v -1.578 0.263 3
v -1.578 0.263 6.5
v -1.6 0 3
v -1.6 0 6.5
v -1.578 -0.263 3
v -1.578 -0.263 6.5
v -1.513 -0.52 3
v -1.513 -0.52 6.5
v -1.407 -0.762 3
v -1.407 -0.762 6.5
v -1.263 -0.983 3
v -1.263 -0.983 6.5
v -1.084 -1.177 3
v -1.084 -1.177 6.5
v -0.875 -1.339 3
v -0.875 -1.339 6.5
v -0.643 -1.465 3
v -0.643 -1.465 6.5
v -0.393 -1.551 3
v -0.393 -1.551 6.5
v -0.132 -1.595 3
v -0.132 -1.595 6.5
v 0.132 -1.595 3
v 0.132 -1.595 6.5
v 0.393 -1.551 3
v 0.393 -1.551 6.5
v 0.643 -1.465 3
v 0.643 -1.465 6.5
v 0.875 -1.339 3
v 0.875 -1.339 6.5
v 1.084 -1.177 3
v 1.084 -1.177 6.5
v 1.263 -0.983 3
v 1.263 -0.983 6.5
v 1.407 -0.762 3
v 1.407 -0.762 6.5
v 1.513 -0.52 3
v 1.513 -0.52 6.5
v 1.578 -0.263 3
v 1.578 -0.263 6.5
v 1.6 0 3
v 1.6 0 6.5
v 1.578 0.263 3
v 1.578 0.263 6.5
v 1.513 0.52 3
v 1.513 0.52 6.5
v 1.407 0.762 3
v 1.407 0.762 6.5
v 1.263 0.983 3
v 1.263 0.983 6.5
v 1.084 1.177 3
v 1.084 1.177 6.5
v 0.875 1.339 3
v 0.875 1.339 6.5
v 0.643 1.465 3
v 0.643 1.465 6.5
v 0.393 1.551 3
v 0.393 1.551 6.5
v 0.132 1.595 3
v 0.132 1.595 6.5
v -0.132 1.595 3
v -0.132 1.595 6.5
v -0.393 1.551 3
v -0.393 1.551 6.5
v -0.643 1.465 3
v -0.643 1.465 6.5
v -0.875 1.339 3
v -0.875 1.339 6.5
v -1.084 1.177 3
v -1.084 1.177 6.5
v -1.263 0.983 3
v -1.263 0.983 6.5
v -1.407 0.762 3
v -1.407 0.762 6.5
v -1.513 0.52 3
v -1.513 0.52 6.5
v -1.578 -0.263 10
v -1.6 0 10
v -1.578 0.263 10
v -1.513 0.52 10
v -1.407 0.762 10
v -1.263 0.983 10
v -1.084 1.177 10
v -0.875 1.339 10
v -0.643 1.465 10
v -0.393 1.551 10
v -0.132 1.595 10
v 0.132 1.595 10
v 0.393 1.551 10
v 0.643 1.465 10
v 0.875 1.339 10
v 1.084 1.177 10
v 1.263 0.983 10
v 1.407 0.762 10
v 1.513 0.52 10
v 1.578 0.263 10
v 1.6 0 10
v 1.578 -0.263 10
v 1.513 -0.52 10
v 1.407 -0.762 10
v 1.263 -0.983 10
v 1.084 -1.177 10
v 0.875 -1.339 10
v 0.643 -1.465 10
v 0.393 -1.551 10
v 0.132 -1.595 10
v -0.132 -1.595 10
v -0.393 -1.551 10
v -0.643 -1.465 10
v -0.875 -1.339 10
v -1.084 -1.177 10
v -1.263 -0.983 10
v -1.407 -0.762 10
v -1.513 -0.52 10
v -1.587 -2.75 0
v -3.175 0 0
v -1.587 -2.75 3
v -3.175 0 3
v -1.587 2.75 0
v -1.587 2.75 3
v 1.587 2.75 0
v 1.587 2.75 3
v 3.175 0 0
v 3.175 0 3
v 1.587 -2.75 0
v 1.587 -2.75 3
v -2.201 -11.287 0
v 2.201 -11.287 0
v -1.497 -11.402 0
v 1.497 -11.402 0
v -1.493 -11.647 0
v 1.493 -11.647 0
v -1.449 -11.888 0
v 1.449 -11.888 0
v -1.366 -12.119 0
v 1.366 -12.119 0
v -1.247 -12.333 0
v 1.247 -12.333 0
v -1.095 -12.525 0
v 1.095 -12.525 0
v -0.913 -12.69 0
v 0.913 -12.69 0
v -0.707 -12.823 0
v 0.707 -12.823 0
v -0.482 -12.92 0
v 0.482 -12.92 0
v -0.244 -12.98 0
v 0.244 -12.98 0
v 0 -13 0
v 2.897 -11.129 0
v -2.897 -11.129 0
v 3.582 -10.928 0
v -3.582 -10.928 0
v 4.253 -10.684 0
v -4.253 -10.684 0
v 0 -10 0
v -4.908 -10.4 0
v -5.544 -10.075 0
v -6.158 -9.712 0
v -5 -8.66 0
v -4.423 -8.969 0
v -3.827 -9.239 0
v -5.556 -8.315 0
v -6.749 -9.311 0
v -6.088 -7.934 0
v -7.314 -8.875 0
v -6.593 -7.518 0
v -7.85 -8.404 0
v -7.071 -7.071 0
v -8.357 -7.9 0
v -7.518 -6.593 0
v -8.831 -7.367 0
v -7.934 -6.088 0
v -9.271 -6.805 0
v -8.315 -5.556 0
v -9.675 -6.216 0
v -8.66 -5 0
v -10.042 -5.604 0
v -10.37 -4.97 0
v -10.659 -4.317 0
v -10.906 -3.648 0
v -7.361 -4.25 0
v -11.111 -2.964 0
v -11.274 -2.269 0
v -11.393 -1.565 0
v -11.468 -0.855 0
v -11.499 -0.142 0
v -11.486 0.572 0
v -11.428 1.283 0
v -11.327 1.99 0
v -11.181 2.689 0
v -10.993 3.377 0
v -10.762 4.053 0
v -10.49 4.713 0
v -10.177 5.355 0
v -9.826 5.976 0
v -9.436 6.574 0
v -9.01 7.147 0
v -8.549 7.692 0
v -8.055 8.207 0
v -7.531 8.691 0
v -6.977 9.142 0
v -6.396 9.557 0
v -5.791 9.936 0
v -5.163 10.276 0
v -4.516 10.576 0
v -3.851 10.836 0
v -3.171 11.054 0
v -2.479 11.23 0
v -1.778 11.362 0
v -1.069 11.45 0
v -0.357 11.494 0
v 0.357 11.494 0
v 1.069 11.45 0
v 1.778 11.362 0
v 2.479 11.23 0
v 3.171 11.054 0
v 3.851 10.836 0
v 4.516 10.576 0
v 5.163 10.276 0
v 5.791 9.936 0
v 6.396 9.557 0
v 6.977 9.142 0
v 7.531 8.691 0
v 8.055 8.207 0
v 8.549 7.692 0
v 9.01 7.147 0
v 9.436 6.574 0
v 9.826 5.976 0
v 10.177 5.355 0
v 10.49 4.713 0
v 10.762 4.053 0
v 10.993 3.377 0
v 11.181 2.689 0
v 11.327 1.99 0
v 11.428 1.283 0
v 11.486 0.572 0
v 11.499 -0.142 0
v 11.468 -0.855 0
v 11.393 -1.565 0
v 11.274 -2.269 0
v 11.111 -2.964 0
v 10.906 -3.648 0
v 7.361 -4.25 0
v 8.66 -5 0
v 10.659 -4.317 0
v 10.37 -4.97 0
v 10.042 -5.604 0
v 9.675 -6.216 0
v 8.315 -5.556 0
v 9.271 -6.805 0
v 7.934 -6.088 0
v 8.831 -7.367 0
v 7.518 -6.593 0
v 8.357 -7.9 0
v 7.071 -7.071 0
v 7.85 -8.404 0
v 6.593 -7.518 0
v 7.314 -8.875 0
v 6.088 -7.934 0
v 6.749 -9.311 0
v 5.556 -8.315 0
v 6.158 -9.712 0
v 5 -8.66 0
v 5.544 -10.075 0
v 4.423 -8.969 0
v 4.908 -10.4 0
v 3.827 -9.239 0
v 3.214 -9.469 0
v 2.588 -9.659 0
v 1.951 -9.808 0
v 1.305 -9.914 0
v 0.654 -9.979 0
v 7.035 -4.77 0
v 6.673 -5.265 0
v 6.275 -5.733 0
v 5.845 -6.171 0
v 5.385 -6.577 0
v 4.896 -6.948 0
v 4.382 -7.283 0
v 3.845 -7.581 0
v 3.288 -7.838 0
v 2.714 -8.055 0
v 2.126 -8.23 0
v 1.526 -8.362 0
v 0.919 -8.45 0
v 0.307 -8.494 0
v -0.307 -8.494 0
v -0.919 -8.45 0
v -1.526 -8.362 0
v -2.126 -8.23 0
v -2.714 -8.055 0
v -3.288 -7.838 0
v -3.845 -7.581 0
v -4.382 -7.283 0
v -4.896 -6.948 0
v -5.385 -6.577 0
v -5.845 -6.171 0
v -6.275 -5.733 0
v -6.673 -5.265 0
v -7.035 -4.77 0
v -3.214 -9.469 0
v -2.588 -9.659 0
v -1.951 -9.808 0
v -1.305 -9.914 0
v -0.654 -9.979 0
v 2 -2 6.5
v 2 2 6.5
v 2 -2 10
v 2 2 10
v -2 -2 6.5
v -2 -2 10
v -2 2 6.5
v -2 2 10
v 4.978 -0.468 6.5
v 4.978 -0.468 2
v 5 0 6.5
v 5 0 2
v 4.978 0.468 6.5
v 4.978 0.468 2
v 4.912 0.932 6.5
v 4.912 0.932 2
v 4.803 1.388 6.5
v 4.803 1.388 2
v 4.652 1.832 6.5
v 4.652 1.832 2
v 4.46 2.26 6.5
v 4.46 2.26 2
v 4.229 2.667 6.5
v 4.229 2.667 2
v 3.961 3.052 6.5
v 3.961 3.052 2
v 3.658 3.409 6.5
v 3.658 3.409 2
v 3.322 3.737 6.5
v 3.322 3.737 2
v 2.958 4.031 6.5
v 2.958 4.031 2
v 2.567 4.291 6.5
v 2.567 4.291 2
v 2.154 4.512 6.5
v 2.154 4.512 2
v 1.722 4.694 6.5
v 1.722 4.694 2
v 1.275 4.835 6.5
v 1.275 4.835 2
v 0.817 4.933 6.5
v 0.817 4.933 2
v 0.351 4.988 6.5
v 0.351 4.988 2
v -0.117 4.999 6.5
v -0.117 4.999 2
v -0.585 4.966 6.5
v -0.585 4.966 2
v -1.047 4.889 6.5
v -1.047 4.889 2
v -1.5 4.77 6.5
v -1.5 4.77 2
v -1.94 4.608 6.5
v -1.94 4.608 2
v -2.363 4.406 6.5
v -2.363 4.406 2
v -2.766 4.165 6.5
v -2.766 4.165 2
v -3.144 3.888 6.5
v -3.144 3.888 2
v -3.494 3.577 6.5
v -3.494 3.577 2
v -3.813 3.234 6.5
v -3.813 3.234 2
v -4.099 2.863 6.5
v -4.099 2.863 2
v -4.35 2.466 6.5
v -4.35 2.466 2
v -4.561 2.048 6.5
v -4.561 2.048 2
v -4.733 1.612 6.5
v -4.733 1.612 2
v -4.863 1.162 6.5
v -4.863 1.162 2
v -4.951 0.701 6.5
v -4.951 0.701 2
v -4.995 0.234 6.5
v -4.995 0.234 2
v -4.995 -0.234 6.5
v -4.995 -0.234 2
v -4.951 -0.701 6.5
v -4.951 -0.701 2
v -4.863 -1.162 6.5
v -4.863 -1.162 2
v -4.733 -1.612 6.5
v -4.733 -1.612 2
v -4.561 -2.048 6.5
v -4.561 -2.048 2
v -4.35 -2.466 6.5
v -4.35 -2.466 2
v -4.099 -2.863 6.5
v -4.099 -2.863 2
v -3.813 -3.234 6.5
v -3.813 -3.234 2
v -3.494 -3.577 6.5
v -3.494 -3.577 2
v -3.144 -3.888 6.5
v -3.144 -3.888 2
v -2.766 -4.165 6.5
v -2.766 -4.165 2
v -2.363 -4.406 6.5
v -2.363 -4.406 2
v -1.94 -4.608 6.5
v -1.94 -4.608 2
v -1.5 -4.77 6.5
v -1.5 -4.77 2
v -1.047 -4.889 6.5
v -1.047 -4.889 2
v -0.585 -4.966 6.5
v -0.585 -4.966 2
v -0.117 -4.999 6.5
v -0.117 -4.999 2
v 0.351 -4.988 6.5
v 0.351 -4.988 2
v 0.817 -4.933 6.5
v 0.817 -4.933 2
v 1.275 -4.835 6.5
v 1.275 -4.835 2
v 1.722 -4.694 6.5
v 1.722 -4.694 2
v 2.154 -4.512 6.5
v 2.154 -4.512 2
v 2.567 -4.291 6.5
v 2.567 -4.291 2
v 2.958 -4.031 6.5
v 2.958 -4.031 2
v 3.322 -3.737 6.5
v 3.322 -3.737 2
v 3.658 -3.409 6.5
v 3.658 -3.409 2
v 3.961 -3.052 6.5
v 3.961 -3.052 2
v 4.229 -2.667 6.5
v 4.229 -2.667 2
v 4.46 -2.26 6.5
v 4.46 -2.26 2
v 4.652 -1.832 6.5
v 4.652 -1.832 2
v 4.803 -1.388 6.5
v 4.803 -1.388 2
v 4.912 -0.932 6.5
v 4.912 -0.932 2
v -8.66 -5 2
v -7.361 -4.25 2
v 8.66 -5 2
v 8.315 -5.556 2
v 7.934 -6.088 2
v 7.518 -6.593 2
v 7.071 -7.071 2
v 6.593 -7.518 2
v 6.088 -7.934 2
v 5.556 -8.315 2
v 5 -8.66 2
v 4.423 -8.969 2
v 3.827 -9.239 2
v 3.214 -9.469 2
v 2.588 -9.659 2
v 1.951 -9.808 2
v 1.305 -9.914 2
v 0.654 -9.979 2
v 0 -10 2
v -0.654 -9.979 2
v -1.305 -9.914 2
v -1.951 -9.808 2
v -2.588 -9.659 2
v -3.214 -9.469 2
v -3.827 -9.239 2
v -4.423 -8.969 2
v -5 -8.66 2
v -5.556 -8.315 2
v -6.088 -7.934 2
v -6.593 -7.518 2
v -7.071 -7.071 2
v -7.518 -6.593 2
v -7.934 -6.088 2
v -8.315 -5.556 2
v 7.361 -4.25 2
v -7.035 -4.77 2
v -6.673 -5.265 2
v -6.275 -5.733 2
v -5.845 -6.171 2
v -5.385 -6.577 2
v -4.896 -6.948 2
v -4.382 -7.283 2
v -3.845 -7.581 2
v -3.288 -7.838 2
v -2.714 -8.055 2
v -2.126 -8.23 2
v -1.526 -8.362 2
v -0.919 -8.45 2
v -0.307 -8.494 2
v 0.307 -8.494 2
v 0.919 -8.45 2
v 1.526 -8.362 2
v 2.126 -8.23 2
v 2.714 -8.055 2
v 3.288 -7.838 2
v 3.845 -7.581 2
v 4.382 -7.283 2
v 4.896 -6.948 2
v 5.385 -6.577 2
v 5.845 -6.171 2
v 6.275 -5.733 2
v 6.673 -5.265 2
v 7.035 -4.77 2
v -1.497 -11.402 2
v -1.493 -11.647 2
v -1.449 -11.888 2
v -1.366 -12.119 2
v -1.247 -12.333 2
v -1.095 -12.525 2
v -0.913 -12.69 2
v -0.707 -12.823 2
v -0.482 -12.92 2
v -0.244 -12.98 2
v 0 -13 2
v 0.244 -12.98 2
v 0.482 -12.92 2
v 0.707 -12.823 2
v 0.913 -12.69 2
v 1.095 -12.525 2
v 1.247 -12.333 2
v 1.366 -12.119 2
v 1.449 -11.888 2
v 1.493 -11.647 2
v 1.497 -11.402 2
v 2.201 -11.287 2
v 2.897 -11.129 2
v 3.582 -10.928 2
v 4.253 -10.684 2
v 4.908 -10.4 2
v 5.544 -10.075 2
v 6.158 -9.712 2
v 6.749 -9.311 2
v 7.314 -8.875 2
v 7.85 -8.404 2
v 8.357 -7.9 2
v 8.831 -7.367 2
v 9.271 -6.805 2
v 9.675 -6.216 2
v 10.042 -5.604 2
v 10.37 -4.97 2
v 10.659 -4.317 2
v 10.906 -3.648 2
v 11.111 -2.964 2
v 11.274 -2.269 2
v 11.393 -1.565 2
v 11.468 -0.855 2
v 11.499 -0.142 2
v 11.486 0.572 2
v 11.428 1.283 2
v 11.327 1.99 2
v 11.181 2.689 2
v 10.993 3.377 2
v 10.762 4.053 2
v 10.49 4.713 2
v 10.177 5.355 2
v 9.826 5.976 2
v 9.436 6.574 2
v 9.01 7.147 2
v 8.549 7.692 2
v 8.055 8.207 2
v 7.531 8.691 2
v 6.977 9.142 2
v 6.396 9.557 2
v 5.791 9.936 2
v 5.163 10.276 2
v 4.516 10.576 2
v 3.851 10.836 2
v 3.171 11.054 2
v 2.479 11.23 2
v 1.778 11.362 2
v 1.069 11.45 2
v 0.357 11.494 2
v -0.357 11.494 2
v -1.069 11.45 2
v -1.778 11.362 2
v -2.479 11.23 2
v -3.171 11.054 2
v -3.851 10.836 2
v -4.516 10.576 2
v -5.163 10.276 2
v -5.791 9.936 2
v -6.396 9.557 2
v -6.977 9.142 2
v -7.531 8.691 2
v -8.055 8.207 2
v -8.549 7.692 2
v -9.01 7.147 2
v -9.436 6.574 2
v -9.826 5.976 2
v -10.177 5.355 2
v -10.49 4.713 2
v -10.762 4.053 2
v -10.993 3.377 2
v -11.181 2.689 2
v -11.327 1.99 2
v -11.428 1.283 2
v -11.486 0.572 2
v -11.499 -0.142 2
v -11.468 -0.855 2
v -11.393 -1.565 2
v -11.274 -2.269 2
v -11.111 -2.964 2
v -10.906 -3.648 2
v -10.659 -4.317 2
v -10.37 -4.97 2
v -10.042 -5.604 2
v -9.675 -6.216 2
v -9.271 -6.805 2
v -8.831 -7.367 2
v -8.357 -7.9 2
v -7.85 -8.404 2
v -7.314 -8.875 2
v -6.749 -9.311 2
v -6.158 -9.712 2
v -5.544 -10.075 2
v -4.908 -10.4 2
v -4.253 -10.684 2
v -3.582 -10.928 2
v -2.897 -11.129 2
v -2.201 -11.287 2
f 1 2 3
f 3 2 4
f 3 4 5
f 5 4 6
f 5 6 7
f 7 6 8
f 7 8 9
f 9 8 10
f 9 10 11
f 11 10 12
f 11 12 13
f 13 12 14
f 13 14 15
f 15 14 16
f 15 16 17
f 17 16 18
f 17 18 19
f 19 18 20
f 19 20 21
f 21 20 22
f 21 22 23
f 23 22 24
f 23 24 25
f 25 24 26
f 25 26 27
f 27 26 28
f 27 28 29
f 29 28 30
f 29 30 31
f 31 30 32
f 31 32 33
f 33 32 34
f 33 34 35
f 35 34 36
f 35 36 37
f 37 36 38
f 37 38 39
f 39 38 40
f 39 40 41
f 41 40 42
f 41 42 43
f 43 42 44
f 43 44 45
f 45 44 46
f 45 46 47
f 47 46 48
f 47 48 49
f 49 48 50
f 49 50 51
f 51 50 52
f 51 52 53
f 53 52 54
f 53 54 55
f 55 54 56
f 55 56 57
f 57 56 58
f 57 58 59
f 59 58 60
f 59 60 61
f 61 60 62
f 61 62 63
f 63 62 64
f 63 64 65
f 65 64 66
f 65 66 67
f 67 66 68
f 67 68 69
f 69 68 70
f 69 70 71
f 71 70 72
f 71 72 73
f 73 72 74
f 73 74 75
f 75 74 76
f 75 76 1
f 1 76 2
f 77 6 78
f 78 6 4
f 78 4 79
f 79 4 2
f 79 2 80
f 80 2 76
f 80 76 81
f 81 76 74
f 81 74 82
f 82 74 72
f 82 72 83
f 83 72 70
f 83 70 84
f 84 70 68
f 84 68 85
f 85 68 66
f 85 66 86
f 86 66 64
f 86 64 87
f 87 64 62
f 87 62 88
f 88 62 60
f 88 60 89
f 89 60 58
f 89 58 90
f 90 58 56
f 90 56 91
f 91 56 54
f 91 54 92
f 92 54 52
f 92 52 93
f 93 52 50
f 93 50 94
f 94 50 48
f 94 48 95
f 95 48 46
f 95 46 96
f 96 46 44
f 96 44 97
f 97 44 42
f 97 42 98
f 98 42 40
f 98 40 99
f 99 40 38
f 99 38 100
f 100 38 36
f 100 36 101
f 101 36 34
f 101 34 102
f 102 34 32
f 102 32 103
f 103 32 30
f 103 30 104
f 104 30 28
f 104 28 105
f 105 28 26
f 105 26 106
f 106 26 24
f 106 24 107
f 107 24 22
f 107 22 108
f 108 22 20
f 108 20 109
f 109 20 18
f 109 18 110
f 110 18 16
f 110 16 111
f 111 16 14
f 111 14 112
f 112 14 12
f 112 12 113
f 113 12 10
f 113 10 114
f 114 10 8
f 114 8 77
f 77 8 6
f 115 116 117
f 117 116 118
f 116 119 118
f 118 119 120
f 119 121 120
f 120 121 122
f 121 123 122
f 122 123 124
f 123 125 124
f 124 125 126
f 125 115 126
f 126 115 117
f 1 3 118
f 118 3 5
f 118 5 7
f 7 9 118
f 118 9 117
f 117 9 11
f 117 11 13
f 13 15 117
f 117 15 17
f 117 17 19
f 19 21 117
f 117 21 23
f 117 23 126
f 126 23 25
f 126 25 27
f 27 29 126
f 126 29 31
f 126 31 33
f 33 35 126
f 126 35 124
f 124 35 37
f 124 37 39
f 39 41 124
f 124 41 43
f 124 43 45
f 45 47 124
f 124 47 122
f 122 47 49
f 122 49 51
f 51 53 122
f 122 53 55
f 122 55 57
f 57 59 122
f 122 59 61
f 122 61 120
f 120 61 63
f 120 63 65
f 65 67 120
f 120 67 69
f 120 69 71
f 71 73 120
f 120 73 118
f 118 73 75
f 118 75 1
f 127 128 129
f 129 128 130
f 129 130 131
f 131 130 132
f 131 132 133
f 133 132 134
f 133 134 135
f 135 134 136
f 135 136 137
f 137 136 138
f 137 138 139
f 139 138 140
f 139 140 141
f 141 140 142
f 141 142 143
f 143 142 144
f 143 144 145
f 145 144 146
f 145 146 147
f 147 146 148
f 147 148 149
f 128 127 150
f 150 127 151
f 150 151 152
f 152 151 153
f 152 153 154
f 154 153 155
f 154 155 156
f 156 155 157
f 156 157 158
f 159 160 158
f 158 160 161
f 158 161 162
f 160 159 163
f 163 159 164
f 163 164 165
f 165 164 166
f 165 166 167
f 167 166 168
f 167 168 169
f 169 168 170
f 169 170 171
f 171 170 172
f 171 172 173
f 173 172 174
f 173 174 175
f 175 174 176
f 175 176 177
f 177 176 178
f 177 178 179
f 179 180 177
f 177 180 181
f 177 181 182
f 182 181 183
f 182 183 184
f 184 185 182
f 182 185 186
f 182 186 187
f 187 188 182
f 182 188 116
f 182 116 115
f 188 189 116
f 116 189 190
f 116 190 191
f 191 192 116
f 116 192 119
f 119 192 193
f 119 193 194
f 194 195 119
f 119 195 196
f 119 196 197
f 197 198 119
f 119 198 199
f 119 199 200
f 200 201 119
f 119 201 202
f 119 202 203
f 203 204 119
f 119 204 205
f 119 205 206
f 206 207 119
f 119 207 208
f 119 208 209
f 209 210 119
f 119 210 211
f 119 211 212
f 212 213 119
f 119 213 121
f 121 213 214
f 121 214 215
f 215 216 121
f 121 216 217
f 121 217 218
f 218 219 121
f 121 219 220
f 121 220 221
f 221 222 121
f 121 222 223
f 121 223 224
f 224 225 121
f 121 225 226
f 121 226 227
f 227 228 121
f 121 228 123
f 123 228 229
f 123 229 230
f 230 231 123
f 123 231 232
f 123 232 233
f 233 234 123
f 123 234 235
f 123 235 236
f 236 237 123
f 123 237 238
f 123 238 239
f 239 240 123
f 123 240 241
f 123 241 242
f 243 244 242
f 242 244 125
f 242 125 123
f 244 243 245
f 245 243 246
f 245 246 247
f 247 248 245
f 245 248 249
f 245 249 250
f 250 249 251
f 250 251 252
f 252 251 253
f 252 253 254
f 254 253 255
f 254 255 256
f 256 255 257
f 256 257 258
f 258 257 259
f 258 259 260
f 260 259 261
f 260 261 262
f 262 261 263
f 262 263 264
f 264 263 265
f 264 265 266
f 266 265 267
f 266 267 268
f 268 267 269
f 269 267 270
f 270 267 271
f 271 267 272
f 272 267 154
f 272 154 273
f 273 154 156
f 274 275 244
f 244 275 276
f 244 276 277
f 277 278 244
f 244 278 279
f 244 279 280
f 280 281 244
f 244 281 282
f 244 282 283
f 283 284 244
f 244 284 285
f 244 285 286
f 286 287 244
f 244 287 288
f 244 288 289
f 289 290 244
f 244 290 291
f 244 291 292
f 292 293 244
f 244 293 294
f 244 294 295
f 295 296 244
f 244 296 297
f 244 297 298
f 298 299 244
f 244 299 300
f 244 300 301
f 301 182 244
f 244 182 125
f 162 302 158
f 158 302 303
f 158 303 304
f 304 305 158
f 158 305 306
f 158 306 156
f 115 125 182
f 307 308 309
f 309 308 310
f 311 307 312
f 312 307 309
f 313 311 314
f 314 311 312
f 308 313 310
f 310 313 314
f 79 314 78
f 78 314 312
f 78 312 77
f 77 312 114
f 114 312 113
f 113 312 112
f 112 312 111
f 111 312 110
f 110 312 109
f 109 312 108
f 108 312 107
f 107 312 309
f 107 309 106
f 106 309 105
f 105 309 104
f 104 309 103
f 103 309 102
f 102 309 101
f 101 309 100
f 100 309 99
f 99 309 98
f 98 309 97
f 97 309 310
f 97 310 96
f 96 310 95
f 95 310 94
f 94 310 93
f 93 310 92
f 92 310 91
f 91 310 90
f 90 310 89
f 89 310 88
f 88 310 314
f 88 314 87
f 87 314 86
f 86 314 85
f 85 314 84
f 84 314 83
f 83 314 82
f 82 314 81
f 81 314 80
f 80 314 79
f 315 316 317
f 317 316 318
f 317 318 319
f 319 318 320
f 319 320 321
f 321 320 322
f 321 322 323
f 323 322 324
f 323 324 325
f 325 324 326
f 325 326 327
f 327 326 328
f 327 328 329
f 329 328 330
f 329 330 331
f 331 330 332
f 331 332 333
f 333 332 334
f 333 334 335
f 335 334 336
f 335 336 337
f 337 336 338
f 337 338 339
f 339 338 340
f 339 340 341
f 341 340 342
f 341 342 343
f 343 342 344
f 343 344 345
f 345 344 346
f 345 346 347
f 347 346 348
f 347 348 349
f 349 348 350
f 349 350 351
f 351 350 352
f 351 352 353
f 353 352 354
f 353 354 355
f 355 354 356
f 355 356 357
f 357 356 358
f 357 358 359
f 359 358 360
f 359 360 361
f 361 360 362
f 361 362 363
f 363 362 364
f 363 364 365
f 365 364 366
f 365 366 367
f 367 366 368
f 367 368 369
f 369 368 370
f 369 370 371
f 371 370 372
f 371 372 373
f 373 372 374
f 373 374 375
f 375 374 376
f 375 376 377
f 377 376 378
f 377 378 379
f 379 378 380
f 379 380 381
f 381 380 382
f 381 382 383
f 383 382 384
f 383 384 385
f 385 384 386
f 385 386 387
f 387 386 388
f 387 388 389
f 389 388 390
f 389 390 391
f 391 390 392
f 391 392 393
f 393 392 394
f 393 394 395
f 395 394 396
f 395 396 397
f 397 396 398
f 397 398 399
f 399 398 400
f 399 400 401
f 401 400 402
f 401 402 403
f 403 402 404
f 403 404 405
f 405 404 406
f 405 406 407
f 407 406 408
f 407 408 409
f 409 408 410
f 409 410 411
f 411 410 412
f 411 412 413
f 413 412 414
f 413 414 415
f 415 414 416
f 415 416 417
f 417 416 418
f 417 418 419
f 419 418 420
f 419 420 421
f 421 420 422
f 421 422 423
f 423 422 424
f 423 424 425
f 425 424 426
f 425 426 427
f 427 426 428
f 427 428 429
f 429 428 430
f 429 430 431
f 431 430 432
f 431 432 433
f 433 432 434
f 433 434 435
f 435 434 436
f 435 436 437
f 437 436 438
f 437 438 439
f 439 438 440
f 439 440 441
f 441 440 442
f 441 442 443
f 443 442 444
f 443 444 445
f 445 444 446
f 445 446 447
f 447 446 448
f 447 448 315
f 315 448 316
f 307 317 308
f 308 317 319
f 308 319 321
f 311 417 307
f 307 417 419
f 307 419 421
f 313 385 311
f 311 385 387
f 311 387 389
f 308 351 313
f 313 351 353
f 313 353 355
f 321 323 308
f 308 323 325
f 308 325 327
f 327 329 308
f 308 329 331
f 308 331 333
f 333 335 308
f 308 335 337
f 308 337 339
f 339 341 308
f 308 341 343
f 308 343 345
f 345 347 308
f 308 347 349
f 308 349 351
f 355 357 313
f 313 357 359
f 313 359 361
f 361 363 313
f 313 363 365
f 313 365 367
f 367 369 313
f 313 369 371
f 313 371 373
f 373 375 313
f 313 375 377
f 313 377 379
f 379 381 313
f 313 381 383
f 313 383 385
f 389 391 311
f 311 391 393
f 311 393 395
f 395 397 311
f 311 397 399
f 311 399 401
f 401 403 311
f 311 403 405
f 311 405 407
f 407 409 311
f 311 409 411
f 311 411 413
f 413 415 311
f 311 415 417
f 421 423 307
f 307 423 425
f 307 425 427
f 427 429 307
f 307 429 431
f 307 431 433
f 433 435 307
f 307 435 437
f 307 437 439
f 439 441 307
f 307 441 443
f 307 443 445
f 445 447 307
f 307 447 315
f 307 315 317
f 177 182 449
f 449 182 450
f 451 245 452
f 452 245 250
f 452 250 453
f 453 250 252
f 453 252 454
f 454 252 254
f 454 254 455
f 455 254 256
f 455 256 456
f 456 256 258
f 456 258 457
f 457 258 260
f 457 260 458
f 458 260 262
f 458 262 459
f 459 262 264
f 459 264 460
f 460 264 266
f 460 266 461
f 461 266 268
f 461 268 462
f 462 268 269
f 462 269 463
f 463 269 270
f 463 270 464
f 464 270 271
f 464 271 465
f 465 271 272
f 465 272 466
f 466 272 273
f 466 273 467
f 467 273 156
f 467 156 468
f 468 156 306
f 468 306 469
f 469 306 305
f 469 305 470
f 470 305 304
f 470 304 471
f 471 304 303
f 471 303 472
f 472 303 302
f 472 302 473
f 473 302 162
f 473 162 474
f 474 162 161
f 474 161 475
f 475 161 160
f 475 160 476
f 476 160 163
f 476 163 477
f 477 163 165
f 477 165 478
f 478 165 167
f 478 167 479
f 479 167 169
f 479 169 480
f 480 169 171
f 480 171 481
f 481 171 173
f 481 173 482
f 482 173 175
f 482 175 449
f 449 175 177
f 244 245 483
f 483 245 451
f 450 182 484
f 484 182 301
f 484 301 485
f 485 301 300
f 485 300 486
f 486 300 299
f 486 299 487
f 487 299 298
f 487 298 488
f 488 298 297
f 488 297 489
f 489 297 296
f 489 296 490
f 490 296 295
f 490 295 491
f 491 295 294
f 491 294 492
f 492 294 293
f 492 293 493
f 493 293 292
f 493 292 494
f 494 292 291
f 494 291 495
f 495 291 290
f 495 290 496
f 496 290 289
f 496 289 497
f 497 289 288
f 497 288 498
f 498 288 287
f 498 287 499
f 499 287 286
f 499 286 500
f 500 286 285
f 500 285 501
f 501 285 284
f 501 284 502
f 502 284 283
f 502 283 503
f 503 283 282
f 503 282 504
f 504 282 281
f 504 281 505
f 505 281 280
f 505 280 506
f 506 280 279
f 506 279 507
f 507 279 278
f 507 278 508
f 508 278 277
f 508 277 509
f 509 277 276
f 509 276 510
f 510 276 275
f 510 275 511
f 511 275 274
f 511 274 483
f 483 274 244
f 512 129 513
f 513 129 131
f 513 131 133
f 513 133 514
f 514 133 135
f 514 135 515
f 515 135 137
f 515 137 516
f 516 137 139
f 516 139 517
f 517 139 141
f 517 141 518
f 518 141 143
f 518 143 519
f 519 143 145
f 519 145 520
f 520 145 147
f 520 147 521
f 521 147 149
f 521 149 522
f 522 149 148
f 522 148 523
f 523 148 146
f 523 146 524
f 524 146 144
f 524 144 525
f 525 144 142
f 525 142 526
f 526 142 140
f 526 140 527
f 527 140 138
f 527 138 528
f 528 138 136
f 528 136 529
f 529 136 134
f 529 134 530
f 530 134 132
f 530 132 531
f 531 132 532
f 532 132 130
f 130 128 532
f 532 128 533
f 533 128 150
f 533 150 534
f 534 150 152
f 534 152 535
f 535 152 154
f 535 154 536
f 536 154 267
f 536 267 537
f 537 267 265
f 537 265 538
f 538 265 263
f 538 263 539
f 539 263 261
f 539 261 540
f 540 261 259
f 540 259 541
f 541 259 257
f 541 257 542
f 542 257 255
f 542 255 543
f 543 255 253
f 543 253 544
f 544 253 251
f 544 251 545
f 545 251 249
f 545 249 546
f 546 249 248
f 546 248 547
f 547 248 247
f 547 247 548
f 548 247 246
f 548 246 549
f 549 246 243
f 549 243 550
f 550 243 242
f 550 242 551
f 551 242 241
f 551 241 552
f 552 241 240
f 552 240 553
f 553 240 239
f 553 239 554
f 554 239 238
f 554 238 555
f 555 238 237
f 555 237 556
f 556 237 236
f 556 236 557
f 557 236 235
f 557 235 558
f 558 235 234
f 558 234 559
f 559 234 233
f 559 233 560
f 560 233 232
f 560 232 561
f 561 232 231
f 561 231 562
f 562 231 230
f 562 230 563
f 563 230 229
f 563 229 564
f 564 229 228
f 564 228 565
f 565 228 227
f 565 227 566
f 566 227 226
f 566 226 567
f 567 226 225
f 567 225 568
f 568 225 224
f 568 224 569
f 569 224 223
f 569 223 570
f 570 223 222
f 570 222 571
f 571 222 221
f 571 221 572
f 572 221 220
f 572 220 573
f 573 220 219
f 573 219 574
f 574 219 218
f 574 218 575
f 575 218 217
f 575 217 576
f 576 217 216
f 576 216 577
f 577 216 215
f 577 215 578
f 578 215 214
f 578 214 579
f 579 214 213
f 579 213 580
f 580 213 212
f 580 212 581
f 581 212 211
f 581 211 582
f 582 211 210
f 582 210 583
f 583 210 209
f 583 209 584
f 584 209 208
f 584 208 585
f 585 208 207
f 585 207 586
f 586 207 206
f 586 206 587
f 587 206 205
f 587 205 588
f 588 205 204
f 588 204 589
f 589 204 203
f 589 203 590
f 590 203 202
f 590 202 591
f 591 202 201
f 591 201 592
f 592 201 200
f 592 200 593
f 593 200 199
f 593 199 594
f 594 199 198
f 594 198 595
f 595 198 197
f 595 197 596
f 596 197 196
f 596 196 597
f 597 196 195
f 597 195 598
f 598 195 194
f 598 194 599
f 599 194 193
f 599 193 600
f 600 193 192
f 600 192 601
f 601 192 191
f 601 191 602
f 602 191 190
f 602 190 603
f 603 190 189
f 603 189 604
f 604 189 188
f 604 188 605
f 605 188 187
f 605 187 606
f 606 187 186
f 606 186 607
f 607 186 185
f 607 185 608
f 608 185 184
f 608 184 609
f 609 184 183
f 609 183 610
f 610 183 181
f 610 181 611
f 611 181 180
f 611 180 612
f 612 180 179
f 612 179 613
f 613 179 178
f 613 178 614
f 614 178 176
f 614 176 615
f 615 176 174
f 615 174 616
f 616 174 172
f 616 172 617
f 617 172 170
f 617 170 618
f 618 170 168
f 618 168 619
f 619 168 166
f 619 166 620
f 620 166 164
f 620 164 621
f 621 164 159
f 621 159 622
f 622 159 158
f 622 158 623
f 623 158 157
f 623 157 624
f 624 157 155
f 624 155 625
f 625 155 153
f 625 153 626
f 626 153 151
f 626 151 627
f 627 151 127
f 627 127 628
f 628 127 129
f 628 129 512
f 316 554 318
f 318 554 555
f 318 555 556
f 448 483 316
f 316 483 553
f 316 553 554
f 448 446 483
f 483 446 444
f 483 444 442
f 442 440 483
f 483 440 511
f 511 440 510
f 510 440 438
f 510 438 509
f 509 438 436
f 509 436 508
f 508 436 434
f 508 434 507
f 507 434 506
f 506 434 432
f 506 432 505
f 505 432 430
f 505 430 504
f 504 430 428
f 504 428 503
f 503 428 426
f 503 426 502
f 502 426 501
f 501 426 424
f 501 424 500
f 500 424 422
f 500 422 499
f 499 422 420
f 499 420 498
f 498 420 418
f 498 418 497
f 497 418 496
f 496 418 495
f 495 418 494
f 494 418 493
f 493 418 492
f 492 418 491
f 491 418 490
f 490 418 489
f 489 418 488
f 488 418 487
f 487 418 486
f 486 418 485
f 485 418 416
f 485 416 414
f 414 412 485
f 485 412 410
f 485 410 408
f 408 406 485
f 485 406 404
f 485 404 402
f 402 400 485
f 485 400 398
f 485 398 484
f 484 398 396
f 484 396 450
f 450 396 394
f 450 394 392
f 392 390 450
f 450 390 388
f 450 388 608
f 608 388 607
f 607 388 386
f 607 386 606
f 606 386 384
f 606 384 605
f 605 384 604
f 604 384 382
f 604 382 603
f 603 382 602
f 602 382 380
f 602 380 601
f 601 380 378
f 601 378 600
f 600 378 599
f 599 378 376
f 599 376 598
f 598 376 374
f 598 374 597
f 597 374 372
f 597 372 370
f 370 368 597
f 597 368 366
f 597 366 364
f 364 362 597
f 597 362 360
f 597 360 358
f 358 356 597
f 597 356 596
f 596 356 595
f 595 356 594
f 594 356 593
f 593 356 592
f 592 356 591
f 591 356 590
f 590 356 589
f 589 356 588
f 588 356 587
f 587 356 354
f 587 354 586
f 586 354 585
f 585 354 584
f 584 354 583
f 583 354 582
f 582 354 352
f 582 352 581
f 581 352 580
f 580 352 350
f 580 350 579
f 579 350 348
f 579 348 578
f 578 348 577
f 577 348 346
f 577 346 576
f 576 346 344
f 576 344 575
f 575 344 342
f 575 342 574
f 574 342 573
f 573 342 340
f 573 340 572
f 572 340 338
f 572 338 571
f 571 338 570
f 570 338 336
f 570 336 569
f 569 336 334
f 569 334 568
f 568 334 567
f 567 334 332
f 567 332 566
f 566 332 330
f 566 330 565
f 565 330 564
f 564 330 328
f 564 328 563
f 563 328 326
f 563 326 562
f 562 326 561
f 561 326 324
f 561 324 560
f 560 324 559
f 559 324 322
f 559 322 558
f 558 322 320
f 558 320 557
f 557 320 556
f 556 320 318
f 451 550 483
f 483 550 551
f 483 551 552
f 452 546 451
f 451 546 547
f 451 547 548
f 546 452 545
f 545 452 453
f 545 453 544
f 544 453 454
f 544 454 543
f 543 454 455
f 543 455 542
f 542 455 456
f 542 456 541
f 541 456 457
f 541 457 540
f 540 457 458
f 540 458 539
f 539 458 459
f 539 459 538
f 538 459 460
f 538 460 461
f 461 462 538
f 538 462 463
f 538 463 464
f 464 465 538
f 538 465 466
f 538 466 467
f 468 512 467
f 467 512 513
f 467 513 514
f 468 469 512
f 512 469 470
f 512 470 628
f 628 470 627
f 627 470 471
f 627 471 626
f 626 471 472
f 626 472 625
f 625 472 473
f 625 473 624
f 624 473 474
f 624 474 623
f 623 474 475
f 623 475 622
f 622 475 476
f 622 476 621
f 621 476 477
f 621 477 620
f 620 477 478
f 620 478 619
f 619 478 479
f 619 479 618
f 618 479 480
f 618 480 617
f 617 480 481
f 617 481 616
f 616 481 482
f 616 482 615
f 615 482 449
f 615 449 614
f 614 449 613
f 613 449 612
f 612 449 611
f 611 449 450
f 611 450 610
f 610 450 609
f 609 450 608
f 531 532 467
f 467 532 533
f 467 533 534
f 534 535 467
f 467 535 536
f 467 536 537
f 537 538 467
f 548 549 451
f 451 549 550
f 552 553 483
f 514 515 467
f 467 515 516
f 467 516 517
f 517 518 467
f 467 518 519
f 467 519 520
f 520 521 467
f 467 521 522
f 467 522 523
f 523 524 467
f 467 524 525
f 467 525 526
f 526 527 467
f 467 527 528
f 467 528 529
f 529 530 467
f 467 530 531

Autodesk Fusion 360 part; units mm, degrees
sketch "Sketch1" plane through (0, 0, 0) normal (0, 0, 1) x (1, 0, 0)
  circle A0 centre (0, -11.5) radius 2 construction
  circle A1 centre (0, 0) radius 12 construction
  circle A2 centre (0, -11.5) radius 1.5
  circle A3 centre (0, 0) radius 8.5
  line L0 (0, 0) -> (8.6603, -5)
  circle A4 centre (0, 0) radius 11.5
  line L1 (0, 0) -> (-8.6603, -5)
  circle A5 centre (0, 0) radius 10
  dimension "d4" = 1.5
  dimension "d5" = -1.5
  dimension "d6" = 2
  dimension "d7" = 0.5
  dimension "d8" = 20
  dimension "d9" = 3
extrude "Extrude1" add sketch "Sketch1" along normal blind 2 contours A2 A4 | A2 A4 | A2 A4 | A3 L0 L1 A5 | A3 L0 L1 | A3 L0 L1 picked at (-8.9789, -3.0313)
sketch "Sketch2" plane through (0, 0, 2) normal (0, 0, 1) x (-1, 0, 0)
  arc A0 (7.3612, 4.25) -> (-7.3612, 4.25) centre (0, 0) ccw
  line L0 (-7.3612, 4.25) -> (-8.6603, 5)
  arc A1 (8.6603, 5) -> (-8.6603, 5) centre (0, 0) ccw
  line L1 (8.6603, 5) -> (7.3612, 4.25)
  arc A2 (-1.4968, 11.4022) -> (1.4968, 11.4022) centre (0, 0) ccw
  arc A3 (1.4968, 11.4022) -> (-1.4968, 11.4022) centre (0, 11.5) ccw
  circle A4 centre (0, 0) radius 5
  dimension "d12" = 10
extrude "Extrude2" add sketch "Sketch2" along normal blind 4.5 contours A4
sketch "Sketch3" plane through (0, 0, 6.5) normal (0, 0, 1) x (-1, 0, 0)
  circle A0 centre (0, 0) radius 5
  line L0 (-2, 2) -> (2, 2)
  line L1 (2, 2) -> (2, -2)
  line L2 (2, -2) -> (-2, -2)
  line L3 (-2, -2) -> (-2, 2)
extrude "Extrude3" add sketch "Sketch3" along normal blind 3.5 contours L0 L1 L2 L3
sketch "Sketch4" plane through (0, 0, 0) normal (0, 0, -1) x (1, 0, 0)
  arc A0 (7.3612, 4.25) -> (-7.3612, 4.25) centre (0, 0) ccw
  line L0 (-7.3612, 4.25) -> (-8.6603, 5)
  arc A1 (8.6603, 5) -> (-8.6603, 5) centre (0, 0) ccw
  line L1 (8.6603, 5) -> (7.3612, 4.25)
  arc A2 (-1.4968, 11.4022) -> (1.4968, 11.4022) centre (0, 0) ccw
  arc A3 (1.4968, 11.4022) -> (-1.4968, 11.4022) centre (0, 11.5) ccw
  circle A4 centre (0, 0) radius 1.6
  line L2 (-1.5875, 2.7496) -> (-3.175, 0)
  line L3 (-3.175, 0) -> (-1.5875, -2.7496)
  line L4 (-1.5875, -2.7496) -> (1.5875, -2.7496)
  line L5 (1.5875, -2.7496) -> (3.175, 0)
  line L6 (3.175, 0) -> (1.5875, 2.7496)
  line L7 (1.5875, 2.7496) -> (-1.5875, 2.7496)
  dimension "d17" = 3.2
  dimension "d20" = 3.175
extrude "Extrude4" cut sketch "Sketch4" against normal blind 3 contours L2 L3 L4 L5 L6 L7
extrude "Extrude5" cut 1 faces at (0.5286, -0.5507, 0) along direction (0, 0, 1) blind 10
